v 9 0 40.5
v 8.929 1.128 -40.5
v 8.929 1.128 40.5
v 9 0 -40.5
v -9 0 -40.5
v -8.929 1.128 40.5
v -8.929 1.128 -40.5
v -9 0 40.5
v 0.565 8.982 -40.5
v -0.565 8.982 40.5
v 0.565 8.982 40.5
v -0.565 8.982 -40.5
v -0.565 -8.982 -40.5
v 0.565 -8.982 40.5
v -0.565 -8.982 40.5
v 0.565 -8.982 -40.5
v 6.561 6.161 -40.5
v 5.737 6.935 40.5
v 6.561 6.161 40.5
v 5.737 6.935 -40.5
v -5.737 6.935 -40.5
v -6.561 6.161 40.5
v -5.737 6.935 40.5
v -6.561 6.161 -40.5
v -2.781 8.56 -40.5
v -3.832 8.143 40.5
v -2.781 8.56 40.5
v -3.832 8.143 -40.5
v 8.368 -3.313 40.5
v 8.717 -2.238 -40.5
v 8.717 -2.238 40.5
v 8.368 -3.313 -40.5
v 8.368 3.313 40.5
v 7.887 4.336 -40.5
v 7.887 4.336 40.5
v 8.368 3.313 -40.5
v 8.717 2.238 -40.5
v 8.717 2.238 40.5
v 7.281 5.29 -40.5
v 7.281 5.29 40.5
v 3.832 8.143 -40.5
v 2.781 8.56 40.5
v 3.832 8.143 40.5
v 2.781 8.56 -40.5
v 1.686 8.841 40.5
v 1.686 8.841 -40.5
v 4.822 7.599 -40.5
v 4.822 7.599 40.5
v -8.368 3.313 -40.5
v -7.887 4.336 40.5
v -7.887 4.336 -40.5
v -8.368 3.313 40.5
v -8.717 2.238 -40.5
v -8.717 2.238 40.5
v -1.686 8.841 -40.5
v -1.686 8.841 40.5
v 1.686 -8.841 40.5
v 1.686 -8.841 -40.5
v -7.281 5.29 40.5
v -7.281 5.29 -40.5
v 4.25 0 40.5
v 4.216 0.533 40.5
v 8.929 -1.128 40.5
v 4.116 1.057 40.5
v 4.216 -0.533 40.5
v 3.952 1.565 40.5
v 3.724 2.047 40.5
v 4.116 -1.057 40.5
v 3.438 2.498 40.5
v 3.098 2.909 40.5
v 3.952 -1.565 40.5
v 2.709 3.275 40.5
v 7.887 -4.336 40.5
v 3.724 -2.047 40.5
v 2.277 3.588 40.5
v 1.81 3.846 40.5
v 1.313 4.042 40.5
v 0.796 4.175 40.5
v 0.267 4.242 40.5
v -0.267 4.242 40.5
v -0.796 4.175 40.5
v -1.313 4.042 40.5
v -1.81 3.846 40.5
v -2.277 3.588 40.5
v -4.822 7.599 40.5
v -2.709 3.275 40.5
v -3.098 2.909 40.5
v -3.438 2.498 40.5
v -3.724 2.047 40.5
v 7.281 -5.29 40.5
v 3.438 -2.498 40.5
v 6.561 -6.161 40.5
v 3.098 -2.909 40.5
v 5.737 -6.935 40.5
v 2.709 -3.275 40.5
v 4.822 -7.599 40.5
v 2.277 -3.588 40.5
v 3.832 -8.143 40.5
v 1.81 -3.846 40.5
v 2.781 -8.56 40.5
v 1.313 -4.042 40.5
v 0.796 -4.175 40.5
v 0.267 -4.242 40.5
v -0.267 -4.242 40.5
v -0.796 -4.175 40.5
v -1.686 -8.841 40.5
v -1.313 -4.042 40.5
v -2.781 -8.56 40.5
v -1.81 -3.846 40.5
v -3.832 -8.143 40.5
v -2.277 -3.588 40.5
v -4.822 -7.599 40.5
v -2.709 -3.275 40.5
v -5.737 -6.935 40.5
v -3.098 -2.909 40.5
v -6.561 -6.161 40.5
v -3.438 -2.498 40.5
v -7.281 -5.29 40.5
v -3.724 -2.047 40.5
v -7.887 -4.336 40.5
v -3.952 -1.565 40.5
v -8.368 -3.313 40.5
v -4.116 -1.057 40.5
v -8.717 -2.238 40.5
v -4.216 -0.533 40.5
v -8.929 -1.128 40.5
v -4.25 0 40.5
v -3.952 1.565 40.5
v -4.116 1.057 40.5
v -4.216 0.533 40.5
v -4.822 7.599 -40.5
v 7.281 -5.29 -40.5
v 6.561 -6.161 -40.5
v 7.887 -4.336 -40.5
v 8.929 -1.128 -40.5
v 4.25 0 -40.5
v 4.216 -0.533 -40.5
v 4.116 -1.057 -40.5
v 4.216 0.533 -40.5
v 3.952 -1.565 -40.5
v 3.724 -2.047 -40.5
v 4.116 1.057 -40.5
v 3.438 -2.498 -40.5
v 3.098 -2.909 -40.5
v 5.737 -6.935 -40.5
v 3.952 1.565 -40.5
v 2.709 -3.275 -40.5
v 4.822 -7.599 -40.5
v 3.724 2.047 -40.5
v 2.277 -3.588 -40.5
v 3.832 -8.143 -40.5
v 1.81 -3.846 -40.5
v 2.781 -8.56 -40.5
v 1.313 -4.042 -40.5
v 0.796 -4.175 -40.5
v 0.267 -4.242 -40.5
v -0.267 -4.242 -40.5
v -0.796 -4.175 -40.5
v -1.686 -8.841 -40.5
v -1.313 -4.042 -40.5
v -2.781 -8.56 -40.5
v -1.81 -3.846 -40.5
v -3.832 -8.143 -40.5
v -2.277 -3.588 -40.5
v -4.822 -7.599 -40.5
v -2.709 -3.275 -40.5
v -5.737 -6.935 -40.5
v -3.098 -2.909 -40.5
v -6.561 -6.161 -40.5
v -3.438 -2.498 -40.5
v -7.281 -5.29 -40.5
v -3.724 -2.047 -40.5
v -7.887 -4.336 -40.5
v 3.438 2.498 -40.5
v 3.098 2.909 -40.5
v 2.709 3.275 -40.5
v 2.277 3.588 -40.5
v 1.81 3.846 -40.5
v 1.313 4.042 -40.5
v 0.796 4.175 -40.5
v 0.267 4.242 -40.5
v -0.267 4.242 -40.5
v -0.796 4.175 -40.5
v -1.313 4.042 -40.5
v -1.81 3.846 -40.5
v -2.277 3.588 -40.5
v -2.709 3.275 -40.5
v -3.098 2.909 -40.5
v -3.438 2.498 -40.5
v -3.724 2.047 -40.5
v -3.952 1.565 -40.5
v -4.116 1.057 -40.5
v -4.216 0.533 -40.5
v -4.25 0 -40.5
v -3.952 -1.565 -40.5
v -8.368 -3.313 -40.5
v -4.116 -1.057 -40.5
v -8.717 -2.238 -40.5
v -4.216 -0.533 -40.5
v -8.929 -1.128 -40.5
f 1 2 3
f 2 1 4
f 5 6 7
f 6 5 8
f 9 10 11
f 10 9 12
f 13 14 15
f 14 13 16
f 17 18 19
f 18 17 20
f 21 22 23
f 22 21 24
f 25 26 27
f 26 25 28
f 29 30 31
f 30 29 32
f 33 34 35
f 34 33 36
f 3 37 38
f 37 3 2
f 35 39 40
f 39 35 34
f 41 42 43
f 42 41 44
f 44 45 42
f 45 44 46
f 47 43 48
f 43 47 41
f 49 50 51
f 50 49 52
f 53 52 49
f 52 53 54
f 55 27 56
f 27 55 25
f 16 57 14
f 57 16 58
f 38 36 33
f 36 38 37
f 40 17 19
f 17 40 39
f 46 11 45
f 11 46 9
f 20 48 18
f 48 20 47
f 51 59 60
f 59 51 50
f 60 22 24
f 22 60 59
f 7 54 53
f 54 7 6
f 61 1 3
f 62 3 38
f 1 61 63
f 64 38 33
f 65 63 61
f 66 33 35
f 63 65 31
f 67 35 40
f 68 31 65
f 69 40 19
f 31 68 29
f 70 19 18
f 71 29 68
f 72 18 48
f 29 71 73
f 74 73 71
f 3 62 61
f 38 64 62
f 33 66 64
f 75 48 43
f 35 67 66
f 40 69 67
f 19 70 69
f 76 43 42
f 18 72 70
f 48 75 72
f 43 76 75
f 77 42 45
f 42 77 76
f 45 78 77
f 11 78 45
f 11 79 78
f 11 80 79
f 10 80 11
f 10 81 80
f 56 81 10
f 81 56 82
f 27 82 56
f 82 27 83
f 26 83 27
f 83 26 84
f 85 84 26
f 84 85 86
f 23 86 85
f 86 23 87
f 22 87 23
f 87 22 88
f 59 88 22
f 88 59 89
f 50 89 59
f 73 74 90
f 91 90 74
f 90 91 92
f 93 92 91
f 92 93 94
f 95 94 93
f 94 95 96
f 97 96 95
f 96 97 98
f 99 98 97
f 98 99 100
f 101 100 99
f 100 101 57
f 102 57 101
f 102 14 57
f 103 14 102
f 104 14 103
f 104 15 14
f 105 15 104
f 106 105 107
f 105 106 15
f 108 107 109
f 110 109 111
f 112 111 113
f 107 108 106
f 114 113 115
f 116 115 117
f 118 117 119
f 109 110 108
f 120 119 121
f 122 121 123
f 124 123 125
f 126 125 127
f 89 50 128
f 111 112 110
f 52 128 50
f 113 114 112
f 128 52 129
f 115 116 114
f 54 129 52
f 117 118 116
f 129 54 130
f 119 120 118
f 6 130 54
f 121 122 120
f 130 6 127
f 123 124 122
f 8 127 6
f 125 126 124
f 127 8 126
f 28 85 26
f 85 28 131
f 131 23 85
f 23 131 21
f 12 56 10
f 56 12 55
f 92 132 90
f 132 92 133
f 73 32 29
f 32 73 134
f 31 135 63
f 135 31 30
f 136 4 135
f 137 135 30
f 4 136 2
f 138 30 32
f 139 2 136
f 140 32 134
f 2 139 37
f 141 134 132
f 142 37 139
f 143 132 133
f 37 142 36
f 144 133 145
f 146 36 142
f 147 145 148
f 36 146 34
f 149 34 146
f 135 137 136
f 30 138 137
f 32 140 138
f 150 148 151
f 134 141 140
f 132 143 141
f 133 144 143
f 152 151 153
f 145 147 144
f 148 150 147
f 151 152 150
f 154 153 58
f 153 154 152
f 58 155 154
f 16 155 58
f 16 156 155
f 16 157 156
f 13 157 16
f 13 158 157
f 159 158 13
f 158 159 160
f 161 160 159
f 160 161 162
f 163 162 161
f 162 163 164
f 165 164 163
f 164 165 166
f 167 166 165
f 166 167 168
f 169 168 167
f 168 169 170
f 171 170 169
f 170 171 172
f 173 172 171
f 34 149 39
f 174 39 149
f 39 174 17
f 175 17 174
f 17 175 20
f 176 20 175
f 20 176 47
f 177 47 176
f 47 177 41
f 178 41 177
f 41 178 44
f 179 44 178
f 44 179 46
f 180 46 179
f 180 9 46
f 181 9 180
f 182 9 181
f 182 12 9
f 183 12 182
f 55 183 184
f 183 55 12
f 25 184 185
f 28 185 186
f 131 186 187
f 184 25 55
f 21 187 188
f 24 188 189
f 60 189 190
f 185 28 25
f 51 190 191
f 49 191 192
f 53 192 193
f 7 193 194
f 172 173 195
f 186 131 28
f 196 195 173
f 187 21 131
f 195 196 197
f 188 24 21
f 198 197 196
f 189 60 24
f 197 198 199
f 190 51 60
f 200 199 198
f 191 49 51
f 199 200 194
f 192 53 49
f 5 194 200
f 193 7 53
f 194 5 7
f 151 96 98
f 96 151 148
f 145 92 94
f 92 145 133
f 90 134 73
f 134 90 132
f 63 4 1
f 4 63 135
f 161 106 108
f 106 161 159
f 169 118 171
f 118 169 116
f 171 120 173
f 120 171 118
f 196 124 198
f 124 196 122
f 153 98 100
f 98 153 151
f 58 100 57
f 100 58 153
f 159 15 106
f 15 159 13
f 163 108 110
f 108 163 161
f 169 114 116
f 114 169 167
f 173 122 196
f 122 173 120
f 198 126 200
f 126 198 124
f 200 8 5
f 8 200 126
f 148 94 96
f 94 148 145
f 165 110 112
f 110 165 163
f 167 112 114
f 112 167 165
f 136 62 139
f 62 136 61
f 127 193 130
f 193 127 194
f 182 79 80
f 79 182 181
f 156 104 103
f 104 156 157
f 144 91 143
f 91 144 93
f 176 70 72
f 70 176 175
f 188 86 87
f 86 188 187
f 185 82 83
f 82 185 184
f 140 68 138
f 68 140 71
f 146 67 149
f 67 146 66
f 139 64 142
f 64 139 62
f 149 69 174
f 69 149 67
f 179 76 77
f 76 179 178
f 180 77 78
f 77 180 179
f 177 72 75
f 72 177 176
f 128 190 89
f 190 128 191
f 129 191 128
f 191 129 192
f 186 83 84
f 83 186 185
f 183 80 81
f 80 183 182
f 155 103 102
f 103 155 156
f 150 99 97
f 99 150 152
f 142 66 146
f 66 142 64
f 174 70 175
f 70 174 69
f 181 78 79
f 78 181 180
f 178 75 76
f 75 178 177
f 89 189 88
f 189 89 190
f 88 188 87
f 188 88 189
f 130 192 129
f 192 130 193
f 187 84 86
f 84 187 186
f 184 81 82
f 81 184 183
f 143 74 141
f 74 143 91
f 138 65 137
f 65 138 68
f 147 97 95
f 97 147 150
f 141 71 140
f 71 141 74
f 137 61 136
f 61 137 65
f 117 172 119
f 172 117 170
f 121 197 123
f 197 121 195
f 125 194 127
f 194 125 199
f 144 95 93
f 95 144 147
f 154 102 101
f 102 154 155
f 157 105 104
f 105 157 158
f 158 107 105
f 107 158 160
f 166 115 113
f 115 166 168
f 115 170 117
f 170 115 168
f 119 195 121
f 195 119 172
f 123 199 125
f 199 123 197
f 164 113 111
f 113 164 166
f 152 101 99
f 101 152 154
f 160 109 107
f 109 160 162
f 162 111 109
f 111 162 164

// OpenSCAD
$fn = 50;


difference() {
	union() {
		translate(v = [0, 0, -40.5000000000]) {
			cylinder(h = 81, r = 9.0000000000);
		}
	}
	union() {
		translate(v = [0, 0, -100.0000000000]) {
			cylinder(h = 200, r = 4.2500000000);
		}
	}
}
